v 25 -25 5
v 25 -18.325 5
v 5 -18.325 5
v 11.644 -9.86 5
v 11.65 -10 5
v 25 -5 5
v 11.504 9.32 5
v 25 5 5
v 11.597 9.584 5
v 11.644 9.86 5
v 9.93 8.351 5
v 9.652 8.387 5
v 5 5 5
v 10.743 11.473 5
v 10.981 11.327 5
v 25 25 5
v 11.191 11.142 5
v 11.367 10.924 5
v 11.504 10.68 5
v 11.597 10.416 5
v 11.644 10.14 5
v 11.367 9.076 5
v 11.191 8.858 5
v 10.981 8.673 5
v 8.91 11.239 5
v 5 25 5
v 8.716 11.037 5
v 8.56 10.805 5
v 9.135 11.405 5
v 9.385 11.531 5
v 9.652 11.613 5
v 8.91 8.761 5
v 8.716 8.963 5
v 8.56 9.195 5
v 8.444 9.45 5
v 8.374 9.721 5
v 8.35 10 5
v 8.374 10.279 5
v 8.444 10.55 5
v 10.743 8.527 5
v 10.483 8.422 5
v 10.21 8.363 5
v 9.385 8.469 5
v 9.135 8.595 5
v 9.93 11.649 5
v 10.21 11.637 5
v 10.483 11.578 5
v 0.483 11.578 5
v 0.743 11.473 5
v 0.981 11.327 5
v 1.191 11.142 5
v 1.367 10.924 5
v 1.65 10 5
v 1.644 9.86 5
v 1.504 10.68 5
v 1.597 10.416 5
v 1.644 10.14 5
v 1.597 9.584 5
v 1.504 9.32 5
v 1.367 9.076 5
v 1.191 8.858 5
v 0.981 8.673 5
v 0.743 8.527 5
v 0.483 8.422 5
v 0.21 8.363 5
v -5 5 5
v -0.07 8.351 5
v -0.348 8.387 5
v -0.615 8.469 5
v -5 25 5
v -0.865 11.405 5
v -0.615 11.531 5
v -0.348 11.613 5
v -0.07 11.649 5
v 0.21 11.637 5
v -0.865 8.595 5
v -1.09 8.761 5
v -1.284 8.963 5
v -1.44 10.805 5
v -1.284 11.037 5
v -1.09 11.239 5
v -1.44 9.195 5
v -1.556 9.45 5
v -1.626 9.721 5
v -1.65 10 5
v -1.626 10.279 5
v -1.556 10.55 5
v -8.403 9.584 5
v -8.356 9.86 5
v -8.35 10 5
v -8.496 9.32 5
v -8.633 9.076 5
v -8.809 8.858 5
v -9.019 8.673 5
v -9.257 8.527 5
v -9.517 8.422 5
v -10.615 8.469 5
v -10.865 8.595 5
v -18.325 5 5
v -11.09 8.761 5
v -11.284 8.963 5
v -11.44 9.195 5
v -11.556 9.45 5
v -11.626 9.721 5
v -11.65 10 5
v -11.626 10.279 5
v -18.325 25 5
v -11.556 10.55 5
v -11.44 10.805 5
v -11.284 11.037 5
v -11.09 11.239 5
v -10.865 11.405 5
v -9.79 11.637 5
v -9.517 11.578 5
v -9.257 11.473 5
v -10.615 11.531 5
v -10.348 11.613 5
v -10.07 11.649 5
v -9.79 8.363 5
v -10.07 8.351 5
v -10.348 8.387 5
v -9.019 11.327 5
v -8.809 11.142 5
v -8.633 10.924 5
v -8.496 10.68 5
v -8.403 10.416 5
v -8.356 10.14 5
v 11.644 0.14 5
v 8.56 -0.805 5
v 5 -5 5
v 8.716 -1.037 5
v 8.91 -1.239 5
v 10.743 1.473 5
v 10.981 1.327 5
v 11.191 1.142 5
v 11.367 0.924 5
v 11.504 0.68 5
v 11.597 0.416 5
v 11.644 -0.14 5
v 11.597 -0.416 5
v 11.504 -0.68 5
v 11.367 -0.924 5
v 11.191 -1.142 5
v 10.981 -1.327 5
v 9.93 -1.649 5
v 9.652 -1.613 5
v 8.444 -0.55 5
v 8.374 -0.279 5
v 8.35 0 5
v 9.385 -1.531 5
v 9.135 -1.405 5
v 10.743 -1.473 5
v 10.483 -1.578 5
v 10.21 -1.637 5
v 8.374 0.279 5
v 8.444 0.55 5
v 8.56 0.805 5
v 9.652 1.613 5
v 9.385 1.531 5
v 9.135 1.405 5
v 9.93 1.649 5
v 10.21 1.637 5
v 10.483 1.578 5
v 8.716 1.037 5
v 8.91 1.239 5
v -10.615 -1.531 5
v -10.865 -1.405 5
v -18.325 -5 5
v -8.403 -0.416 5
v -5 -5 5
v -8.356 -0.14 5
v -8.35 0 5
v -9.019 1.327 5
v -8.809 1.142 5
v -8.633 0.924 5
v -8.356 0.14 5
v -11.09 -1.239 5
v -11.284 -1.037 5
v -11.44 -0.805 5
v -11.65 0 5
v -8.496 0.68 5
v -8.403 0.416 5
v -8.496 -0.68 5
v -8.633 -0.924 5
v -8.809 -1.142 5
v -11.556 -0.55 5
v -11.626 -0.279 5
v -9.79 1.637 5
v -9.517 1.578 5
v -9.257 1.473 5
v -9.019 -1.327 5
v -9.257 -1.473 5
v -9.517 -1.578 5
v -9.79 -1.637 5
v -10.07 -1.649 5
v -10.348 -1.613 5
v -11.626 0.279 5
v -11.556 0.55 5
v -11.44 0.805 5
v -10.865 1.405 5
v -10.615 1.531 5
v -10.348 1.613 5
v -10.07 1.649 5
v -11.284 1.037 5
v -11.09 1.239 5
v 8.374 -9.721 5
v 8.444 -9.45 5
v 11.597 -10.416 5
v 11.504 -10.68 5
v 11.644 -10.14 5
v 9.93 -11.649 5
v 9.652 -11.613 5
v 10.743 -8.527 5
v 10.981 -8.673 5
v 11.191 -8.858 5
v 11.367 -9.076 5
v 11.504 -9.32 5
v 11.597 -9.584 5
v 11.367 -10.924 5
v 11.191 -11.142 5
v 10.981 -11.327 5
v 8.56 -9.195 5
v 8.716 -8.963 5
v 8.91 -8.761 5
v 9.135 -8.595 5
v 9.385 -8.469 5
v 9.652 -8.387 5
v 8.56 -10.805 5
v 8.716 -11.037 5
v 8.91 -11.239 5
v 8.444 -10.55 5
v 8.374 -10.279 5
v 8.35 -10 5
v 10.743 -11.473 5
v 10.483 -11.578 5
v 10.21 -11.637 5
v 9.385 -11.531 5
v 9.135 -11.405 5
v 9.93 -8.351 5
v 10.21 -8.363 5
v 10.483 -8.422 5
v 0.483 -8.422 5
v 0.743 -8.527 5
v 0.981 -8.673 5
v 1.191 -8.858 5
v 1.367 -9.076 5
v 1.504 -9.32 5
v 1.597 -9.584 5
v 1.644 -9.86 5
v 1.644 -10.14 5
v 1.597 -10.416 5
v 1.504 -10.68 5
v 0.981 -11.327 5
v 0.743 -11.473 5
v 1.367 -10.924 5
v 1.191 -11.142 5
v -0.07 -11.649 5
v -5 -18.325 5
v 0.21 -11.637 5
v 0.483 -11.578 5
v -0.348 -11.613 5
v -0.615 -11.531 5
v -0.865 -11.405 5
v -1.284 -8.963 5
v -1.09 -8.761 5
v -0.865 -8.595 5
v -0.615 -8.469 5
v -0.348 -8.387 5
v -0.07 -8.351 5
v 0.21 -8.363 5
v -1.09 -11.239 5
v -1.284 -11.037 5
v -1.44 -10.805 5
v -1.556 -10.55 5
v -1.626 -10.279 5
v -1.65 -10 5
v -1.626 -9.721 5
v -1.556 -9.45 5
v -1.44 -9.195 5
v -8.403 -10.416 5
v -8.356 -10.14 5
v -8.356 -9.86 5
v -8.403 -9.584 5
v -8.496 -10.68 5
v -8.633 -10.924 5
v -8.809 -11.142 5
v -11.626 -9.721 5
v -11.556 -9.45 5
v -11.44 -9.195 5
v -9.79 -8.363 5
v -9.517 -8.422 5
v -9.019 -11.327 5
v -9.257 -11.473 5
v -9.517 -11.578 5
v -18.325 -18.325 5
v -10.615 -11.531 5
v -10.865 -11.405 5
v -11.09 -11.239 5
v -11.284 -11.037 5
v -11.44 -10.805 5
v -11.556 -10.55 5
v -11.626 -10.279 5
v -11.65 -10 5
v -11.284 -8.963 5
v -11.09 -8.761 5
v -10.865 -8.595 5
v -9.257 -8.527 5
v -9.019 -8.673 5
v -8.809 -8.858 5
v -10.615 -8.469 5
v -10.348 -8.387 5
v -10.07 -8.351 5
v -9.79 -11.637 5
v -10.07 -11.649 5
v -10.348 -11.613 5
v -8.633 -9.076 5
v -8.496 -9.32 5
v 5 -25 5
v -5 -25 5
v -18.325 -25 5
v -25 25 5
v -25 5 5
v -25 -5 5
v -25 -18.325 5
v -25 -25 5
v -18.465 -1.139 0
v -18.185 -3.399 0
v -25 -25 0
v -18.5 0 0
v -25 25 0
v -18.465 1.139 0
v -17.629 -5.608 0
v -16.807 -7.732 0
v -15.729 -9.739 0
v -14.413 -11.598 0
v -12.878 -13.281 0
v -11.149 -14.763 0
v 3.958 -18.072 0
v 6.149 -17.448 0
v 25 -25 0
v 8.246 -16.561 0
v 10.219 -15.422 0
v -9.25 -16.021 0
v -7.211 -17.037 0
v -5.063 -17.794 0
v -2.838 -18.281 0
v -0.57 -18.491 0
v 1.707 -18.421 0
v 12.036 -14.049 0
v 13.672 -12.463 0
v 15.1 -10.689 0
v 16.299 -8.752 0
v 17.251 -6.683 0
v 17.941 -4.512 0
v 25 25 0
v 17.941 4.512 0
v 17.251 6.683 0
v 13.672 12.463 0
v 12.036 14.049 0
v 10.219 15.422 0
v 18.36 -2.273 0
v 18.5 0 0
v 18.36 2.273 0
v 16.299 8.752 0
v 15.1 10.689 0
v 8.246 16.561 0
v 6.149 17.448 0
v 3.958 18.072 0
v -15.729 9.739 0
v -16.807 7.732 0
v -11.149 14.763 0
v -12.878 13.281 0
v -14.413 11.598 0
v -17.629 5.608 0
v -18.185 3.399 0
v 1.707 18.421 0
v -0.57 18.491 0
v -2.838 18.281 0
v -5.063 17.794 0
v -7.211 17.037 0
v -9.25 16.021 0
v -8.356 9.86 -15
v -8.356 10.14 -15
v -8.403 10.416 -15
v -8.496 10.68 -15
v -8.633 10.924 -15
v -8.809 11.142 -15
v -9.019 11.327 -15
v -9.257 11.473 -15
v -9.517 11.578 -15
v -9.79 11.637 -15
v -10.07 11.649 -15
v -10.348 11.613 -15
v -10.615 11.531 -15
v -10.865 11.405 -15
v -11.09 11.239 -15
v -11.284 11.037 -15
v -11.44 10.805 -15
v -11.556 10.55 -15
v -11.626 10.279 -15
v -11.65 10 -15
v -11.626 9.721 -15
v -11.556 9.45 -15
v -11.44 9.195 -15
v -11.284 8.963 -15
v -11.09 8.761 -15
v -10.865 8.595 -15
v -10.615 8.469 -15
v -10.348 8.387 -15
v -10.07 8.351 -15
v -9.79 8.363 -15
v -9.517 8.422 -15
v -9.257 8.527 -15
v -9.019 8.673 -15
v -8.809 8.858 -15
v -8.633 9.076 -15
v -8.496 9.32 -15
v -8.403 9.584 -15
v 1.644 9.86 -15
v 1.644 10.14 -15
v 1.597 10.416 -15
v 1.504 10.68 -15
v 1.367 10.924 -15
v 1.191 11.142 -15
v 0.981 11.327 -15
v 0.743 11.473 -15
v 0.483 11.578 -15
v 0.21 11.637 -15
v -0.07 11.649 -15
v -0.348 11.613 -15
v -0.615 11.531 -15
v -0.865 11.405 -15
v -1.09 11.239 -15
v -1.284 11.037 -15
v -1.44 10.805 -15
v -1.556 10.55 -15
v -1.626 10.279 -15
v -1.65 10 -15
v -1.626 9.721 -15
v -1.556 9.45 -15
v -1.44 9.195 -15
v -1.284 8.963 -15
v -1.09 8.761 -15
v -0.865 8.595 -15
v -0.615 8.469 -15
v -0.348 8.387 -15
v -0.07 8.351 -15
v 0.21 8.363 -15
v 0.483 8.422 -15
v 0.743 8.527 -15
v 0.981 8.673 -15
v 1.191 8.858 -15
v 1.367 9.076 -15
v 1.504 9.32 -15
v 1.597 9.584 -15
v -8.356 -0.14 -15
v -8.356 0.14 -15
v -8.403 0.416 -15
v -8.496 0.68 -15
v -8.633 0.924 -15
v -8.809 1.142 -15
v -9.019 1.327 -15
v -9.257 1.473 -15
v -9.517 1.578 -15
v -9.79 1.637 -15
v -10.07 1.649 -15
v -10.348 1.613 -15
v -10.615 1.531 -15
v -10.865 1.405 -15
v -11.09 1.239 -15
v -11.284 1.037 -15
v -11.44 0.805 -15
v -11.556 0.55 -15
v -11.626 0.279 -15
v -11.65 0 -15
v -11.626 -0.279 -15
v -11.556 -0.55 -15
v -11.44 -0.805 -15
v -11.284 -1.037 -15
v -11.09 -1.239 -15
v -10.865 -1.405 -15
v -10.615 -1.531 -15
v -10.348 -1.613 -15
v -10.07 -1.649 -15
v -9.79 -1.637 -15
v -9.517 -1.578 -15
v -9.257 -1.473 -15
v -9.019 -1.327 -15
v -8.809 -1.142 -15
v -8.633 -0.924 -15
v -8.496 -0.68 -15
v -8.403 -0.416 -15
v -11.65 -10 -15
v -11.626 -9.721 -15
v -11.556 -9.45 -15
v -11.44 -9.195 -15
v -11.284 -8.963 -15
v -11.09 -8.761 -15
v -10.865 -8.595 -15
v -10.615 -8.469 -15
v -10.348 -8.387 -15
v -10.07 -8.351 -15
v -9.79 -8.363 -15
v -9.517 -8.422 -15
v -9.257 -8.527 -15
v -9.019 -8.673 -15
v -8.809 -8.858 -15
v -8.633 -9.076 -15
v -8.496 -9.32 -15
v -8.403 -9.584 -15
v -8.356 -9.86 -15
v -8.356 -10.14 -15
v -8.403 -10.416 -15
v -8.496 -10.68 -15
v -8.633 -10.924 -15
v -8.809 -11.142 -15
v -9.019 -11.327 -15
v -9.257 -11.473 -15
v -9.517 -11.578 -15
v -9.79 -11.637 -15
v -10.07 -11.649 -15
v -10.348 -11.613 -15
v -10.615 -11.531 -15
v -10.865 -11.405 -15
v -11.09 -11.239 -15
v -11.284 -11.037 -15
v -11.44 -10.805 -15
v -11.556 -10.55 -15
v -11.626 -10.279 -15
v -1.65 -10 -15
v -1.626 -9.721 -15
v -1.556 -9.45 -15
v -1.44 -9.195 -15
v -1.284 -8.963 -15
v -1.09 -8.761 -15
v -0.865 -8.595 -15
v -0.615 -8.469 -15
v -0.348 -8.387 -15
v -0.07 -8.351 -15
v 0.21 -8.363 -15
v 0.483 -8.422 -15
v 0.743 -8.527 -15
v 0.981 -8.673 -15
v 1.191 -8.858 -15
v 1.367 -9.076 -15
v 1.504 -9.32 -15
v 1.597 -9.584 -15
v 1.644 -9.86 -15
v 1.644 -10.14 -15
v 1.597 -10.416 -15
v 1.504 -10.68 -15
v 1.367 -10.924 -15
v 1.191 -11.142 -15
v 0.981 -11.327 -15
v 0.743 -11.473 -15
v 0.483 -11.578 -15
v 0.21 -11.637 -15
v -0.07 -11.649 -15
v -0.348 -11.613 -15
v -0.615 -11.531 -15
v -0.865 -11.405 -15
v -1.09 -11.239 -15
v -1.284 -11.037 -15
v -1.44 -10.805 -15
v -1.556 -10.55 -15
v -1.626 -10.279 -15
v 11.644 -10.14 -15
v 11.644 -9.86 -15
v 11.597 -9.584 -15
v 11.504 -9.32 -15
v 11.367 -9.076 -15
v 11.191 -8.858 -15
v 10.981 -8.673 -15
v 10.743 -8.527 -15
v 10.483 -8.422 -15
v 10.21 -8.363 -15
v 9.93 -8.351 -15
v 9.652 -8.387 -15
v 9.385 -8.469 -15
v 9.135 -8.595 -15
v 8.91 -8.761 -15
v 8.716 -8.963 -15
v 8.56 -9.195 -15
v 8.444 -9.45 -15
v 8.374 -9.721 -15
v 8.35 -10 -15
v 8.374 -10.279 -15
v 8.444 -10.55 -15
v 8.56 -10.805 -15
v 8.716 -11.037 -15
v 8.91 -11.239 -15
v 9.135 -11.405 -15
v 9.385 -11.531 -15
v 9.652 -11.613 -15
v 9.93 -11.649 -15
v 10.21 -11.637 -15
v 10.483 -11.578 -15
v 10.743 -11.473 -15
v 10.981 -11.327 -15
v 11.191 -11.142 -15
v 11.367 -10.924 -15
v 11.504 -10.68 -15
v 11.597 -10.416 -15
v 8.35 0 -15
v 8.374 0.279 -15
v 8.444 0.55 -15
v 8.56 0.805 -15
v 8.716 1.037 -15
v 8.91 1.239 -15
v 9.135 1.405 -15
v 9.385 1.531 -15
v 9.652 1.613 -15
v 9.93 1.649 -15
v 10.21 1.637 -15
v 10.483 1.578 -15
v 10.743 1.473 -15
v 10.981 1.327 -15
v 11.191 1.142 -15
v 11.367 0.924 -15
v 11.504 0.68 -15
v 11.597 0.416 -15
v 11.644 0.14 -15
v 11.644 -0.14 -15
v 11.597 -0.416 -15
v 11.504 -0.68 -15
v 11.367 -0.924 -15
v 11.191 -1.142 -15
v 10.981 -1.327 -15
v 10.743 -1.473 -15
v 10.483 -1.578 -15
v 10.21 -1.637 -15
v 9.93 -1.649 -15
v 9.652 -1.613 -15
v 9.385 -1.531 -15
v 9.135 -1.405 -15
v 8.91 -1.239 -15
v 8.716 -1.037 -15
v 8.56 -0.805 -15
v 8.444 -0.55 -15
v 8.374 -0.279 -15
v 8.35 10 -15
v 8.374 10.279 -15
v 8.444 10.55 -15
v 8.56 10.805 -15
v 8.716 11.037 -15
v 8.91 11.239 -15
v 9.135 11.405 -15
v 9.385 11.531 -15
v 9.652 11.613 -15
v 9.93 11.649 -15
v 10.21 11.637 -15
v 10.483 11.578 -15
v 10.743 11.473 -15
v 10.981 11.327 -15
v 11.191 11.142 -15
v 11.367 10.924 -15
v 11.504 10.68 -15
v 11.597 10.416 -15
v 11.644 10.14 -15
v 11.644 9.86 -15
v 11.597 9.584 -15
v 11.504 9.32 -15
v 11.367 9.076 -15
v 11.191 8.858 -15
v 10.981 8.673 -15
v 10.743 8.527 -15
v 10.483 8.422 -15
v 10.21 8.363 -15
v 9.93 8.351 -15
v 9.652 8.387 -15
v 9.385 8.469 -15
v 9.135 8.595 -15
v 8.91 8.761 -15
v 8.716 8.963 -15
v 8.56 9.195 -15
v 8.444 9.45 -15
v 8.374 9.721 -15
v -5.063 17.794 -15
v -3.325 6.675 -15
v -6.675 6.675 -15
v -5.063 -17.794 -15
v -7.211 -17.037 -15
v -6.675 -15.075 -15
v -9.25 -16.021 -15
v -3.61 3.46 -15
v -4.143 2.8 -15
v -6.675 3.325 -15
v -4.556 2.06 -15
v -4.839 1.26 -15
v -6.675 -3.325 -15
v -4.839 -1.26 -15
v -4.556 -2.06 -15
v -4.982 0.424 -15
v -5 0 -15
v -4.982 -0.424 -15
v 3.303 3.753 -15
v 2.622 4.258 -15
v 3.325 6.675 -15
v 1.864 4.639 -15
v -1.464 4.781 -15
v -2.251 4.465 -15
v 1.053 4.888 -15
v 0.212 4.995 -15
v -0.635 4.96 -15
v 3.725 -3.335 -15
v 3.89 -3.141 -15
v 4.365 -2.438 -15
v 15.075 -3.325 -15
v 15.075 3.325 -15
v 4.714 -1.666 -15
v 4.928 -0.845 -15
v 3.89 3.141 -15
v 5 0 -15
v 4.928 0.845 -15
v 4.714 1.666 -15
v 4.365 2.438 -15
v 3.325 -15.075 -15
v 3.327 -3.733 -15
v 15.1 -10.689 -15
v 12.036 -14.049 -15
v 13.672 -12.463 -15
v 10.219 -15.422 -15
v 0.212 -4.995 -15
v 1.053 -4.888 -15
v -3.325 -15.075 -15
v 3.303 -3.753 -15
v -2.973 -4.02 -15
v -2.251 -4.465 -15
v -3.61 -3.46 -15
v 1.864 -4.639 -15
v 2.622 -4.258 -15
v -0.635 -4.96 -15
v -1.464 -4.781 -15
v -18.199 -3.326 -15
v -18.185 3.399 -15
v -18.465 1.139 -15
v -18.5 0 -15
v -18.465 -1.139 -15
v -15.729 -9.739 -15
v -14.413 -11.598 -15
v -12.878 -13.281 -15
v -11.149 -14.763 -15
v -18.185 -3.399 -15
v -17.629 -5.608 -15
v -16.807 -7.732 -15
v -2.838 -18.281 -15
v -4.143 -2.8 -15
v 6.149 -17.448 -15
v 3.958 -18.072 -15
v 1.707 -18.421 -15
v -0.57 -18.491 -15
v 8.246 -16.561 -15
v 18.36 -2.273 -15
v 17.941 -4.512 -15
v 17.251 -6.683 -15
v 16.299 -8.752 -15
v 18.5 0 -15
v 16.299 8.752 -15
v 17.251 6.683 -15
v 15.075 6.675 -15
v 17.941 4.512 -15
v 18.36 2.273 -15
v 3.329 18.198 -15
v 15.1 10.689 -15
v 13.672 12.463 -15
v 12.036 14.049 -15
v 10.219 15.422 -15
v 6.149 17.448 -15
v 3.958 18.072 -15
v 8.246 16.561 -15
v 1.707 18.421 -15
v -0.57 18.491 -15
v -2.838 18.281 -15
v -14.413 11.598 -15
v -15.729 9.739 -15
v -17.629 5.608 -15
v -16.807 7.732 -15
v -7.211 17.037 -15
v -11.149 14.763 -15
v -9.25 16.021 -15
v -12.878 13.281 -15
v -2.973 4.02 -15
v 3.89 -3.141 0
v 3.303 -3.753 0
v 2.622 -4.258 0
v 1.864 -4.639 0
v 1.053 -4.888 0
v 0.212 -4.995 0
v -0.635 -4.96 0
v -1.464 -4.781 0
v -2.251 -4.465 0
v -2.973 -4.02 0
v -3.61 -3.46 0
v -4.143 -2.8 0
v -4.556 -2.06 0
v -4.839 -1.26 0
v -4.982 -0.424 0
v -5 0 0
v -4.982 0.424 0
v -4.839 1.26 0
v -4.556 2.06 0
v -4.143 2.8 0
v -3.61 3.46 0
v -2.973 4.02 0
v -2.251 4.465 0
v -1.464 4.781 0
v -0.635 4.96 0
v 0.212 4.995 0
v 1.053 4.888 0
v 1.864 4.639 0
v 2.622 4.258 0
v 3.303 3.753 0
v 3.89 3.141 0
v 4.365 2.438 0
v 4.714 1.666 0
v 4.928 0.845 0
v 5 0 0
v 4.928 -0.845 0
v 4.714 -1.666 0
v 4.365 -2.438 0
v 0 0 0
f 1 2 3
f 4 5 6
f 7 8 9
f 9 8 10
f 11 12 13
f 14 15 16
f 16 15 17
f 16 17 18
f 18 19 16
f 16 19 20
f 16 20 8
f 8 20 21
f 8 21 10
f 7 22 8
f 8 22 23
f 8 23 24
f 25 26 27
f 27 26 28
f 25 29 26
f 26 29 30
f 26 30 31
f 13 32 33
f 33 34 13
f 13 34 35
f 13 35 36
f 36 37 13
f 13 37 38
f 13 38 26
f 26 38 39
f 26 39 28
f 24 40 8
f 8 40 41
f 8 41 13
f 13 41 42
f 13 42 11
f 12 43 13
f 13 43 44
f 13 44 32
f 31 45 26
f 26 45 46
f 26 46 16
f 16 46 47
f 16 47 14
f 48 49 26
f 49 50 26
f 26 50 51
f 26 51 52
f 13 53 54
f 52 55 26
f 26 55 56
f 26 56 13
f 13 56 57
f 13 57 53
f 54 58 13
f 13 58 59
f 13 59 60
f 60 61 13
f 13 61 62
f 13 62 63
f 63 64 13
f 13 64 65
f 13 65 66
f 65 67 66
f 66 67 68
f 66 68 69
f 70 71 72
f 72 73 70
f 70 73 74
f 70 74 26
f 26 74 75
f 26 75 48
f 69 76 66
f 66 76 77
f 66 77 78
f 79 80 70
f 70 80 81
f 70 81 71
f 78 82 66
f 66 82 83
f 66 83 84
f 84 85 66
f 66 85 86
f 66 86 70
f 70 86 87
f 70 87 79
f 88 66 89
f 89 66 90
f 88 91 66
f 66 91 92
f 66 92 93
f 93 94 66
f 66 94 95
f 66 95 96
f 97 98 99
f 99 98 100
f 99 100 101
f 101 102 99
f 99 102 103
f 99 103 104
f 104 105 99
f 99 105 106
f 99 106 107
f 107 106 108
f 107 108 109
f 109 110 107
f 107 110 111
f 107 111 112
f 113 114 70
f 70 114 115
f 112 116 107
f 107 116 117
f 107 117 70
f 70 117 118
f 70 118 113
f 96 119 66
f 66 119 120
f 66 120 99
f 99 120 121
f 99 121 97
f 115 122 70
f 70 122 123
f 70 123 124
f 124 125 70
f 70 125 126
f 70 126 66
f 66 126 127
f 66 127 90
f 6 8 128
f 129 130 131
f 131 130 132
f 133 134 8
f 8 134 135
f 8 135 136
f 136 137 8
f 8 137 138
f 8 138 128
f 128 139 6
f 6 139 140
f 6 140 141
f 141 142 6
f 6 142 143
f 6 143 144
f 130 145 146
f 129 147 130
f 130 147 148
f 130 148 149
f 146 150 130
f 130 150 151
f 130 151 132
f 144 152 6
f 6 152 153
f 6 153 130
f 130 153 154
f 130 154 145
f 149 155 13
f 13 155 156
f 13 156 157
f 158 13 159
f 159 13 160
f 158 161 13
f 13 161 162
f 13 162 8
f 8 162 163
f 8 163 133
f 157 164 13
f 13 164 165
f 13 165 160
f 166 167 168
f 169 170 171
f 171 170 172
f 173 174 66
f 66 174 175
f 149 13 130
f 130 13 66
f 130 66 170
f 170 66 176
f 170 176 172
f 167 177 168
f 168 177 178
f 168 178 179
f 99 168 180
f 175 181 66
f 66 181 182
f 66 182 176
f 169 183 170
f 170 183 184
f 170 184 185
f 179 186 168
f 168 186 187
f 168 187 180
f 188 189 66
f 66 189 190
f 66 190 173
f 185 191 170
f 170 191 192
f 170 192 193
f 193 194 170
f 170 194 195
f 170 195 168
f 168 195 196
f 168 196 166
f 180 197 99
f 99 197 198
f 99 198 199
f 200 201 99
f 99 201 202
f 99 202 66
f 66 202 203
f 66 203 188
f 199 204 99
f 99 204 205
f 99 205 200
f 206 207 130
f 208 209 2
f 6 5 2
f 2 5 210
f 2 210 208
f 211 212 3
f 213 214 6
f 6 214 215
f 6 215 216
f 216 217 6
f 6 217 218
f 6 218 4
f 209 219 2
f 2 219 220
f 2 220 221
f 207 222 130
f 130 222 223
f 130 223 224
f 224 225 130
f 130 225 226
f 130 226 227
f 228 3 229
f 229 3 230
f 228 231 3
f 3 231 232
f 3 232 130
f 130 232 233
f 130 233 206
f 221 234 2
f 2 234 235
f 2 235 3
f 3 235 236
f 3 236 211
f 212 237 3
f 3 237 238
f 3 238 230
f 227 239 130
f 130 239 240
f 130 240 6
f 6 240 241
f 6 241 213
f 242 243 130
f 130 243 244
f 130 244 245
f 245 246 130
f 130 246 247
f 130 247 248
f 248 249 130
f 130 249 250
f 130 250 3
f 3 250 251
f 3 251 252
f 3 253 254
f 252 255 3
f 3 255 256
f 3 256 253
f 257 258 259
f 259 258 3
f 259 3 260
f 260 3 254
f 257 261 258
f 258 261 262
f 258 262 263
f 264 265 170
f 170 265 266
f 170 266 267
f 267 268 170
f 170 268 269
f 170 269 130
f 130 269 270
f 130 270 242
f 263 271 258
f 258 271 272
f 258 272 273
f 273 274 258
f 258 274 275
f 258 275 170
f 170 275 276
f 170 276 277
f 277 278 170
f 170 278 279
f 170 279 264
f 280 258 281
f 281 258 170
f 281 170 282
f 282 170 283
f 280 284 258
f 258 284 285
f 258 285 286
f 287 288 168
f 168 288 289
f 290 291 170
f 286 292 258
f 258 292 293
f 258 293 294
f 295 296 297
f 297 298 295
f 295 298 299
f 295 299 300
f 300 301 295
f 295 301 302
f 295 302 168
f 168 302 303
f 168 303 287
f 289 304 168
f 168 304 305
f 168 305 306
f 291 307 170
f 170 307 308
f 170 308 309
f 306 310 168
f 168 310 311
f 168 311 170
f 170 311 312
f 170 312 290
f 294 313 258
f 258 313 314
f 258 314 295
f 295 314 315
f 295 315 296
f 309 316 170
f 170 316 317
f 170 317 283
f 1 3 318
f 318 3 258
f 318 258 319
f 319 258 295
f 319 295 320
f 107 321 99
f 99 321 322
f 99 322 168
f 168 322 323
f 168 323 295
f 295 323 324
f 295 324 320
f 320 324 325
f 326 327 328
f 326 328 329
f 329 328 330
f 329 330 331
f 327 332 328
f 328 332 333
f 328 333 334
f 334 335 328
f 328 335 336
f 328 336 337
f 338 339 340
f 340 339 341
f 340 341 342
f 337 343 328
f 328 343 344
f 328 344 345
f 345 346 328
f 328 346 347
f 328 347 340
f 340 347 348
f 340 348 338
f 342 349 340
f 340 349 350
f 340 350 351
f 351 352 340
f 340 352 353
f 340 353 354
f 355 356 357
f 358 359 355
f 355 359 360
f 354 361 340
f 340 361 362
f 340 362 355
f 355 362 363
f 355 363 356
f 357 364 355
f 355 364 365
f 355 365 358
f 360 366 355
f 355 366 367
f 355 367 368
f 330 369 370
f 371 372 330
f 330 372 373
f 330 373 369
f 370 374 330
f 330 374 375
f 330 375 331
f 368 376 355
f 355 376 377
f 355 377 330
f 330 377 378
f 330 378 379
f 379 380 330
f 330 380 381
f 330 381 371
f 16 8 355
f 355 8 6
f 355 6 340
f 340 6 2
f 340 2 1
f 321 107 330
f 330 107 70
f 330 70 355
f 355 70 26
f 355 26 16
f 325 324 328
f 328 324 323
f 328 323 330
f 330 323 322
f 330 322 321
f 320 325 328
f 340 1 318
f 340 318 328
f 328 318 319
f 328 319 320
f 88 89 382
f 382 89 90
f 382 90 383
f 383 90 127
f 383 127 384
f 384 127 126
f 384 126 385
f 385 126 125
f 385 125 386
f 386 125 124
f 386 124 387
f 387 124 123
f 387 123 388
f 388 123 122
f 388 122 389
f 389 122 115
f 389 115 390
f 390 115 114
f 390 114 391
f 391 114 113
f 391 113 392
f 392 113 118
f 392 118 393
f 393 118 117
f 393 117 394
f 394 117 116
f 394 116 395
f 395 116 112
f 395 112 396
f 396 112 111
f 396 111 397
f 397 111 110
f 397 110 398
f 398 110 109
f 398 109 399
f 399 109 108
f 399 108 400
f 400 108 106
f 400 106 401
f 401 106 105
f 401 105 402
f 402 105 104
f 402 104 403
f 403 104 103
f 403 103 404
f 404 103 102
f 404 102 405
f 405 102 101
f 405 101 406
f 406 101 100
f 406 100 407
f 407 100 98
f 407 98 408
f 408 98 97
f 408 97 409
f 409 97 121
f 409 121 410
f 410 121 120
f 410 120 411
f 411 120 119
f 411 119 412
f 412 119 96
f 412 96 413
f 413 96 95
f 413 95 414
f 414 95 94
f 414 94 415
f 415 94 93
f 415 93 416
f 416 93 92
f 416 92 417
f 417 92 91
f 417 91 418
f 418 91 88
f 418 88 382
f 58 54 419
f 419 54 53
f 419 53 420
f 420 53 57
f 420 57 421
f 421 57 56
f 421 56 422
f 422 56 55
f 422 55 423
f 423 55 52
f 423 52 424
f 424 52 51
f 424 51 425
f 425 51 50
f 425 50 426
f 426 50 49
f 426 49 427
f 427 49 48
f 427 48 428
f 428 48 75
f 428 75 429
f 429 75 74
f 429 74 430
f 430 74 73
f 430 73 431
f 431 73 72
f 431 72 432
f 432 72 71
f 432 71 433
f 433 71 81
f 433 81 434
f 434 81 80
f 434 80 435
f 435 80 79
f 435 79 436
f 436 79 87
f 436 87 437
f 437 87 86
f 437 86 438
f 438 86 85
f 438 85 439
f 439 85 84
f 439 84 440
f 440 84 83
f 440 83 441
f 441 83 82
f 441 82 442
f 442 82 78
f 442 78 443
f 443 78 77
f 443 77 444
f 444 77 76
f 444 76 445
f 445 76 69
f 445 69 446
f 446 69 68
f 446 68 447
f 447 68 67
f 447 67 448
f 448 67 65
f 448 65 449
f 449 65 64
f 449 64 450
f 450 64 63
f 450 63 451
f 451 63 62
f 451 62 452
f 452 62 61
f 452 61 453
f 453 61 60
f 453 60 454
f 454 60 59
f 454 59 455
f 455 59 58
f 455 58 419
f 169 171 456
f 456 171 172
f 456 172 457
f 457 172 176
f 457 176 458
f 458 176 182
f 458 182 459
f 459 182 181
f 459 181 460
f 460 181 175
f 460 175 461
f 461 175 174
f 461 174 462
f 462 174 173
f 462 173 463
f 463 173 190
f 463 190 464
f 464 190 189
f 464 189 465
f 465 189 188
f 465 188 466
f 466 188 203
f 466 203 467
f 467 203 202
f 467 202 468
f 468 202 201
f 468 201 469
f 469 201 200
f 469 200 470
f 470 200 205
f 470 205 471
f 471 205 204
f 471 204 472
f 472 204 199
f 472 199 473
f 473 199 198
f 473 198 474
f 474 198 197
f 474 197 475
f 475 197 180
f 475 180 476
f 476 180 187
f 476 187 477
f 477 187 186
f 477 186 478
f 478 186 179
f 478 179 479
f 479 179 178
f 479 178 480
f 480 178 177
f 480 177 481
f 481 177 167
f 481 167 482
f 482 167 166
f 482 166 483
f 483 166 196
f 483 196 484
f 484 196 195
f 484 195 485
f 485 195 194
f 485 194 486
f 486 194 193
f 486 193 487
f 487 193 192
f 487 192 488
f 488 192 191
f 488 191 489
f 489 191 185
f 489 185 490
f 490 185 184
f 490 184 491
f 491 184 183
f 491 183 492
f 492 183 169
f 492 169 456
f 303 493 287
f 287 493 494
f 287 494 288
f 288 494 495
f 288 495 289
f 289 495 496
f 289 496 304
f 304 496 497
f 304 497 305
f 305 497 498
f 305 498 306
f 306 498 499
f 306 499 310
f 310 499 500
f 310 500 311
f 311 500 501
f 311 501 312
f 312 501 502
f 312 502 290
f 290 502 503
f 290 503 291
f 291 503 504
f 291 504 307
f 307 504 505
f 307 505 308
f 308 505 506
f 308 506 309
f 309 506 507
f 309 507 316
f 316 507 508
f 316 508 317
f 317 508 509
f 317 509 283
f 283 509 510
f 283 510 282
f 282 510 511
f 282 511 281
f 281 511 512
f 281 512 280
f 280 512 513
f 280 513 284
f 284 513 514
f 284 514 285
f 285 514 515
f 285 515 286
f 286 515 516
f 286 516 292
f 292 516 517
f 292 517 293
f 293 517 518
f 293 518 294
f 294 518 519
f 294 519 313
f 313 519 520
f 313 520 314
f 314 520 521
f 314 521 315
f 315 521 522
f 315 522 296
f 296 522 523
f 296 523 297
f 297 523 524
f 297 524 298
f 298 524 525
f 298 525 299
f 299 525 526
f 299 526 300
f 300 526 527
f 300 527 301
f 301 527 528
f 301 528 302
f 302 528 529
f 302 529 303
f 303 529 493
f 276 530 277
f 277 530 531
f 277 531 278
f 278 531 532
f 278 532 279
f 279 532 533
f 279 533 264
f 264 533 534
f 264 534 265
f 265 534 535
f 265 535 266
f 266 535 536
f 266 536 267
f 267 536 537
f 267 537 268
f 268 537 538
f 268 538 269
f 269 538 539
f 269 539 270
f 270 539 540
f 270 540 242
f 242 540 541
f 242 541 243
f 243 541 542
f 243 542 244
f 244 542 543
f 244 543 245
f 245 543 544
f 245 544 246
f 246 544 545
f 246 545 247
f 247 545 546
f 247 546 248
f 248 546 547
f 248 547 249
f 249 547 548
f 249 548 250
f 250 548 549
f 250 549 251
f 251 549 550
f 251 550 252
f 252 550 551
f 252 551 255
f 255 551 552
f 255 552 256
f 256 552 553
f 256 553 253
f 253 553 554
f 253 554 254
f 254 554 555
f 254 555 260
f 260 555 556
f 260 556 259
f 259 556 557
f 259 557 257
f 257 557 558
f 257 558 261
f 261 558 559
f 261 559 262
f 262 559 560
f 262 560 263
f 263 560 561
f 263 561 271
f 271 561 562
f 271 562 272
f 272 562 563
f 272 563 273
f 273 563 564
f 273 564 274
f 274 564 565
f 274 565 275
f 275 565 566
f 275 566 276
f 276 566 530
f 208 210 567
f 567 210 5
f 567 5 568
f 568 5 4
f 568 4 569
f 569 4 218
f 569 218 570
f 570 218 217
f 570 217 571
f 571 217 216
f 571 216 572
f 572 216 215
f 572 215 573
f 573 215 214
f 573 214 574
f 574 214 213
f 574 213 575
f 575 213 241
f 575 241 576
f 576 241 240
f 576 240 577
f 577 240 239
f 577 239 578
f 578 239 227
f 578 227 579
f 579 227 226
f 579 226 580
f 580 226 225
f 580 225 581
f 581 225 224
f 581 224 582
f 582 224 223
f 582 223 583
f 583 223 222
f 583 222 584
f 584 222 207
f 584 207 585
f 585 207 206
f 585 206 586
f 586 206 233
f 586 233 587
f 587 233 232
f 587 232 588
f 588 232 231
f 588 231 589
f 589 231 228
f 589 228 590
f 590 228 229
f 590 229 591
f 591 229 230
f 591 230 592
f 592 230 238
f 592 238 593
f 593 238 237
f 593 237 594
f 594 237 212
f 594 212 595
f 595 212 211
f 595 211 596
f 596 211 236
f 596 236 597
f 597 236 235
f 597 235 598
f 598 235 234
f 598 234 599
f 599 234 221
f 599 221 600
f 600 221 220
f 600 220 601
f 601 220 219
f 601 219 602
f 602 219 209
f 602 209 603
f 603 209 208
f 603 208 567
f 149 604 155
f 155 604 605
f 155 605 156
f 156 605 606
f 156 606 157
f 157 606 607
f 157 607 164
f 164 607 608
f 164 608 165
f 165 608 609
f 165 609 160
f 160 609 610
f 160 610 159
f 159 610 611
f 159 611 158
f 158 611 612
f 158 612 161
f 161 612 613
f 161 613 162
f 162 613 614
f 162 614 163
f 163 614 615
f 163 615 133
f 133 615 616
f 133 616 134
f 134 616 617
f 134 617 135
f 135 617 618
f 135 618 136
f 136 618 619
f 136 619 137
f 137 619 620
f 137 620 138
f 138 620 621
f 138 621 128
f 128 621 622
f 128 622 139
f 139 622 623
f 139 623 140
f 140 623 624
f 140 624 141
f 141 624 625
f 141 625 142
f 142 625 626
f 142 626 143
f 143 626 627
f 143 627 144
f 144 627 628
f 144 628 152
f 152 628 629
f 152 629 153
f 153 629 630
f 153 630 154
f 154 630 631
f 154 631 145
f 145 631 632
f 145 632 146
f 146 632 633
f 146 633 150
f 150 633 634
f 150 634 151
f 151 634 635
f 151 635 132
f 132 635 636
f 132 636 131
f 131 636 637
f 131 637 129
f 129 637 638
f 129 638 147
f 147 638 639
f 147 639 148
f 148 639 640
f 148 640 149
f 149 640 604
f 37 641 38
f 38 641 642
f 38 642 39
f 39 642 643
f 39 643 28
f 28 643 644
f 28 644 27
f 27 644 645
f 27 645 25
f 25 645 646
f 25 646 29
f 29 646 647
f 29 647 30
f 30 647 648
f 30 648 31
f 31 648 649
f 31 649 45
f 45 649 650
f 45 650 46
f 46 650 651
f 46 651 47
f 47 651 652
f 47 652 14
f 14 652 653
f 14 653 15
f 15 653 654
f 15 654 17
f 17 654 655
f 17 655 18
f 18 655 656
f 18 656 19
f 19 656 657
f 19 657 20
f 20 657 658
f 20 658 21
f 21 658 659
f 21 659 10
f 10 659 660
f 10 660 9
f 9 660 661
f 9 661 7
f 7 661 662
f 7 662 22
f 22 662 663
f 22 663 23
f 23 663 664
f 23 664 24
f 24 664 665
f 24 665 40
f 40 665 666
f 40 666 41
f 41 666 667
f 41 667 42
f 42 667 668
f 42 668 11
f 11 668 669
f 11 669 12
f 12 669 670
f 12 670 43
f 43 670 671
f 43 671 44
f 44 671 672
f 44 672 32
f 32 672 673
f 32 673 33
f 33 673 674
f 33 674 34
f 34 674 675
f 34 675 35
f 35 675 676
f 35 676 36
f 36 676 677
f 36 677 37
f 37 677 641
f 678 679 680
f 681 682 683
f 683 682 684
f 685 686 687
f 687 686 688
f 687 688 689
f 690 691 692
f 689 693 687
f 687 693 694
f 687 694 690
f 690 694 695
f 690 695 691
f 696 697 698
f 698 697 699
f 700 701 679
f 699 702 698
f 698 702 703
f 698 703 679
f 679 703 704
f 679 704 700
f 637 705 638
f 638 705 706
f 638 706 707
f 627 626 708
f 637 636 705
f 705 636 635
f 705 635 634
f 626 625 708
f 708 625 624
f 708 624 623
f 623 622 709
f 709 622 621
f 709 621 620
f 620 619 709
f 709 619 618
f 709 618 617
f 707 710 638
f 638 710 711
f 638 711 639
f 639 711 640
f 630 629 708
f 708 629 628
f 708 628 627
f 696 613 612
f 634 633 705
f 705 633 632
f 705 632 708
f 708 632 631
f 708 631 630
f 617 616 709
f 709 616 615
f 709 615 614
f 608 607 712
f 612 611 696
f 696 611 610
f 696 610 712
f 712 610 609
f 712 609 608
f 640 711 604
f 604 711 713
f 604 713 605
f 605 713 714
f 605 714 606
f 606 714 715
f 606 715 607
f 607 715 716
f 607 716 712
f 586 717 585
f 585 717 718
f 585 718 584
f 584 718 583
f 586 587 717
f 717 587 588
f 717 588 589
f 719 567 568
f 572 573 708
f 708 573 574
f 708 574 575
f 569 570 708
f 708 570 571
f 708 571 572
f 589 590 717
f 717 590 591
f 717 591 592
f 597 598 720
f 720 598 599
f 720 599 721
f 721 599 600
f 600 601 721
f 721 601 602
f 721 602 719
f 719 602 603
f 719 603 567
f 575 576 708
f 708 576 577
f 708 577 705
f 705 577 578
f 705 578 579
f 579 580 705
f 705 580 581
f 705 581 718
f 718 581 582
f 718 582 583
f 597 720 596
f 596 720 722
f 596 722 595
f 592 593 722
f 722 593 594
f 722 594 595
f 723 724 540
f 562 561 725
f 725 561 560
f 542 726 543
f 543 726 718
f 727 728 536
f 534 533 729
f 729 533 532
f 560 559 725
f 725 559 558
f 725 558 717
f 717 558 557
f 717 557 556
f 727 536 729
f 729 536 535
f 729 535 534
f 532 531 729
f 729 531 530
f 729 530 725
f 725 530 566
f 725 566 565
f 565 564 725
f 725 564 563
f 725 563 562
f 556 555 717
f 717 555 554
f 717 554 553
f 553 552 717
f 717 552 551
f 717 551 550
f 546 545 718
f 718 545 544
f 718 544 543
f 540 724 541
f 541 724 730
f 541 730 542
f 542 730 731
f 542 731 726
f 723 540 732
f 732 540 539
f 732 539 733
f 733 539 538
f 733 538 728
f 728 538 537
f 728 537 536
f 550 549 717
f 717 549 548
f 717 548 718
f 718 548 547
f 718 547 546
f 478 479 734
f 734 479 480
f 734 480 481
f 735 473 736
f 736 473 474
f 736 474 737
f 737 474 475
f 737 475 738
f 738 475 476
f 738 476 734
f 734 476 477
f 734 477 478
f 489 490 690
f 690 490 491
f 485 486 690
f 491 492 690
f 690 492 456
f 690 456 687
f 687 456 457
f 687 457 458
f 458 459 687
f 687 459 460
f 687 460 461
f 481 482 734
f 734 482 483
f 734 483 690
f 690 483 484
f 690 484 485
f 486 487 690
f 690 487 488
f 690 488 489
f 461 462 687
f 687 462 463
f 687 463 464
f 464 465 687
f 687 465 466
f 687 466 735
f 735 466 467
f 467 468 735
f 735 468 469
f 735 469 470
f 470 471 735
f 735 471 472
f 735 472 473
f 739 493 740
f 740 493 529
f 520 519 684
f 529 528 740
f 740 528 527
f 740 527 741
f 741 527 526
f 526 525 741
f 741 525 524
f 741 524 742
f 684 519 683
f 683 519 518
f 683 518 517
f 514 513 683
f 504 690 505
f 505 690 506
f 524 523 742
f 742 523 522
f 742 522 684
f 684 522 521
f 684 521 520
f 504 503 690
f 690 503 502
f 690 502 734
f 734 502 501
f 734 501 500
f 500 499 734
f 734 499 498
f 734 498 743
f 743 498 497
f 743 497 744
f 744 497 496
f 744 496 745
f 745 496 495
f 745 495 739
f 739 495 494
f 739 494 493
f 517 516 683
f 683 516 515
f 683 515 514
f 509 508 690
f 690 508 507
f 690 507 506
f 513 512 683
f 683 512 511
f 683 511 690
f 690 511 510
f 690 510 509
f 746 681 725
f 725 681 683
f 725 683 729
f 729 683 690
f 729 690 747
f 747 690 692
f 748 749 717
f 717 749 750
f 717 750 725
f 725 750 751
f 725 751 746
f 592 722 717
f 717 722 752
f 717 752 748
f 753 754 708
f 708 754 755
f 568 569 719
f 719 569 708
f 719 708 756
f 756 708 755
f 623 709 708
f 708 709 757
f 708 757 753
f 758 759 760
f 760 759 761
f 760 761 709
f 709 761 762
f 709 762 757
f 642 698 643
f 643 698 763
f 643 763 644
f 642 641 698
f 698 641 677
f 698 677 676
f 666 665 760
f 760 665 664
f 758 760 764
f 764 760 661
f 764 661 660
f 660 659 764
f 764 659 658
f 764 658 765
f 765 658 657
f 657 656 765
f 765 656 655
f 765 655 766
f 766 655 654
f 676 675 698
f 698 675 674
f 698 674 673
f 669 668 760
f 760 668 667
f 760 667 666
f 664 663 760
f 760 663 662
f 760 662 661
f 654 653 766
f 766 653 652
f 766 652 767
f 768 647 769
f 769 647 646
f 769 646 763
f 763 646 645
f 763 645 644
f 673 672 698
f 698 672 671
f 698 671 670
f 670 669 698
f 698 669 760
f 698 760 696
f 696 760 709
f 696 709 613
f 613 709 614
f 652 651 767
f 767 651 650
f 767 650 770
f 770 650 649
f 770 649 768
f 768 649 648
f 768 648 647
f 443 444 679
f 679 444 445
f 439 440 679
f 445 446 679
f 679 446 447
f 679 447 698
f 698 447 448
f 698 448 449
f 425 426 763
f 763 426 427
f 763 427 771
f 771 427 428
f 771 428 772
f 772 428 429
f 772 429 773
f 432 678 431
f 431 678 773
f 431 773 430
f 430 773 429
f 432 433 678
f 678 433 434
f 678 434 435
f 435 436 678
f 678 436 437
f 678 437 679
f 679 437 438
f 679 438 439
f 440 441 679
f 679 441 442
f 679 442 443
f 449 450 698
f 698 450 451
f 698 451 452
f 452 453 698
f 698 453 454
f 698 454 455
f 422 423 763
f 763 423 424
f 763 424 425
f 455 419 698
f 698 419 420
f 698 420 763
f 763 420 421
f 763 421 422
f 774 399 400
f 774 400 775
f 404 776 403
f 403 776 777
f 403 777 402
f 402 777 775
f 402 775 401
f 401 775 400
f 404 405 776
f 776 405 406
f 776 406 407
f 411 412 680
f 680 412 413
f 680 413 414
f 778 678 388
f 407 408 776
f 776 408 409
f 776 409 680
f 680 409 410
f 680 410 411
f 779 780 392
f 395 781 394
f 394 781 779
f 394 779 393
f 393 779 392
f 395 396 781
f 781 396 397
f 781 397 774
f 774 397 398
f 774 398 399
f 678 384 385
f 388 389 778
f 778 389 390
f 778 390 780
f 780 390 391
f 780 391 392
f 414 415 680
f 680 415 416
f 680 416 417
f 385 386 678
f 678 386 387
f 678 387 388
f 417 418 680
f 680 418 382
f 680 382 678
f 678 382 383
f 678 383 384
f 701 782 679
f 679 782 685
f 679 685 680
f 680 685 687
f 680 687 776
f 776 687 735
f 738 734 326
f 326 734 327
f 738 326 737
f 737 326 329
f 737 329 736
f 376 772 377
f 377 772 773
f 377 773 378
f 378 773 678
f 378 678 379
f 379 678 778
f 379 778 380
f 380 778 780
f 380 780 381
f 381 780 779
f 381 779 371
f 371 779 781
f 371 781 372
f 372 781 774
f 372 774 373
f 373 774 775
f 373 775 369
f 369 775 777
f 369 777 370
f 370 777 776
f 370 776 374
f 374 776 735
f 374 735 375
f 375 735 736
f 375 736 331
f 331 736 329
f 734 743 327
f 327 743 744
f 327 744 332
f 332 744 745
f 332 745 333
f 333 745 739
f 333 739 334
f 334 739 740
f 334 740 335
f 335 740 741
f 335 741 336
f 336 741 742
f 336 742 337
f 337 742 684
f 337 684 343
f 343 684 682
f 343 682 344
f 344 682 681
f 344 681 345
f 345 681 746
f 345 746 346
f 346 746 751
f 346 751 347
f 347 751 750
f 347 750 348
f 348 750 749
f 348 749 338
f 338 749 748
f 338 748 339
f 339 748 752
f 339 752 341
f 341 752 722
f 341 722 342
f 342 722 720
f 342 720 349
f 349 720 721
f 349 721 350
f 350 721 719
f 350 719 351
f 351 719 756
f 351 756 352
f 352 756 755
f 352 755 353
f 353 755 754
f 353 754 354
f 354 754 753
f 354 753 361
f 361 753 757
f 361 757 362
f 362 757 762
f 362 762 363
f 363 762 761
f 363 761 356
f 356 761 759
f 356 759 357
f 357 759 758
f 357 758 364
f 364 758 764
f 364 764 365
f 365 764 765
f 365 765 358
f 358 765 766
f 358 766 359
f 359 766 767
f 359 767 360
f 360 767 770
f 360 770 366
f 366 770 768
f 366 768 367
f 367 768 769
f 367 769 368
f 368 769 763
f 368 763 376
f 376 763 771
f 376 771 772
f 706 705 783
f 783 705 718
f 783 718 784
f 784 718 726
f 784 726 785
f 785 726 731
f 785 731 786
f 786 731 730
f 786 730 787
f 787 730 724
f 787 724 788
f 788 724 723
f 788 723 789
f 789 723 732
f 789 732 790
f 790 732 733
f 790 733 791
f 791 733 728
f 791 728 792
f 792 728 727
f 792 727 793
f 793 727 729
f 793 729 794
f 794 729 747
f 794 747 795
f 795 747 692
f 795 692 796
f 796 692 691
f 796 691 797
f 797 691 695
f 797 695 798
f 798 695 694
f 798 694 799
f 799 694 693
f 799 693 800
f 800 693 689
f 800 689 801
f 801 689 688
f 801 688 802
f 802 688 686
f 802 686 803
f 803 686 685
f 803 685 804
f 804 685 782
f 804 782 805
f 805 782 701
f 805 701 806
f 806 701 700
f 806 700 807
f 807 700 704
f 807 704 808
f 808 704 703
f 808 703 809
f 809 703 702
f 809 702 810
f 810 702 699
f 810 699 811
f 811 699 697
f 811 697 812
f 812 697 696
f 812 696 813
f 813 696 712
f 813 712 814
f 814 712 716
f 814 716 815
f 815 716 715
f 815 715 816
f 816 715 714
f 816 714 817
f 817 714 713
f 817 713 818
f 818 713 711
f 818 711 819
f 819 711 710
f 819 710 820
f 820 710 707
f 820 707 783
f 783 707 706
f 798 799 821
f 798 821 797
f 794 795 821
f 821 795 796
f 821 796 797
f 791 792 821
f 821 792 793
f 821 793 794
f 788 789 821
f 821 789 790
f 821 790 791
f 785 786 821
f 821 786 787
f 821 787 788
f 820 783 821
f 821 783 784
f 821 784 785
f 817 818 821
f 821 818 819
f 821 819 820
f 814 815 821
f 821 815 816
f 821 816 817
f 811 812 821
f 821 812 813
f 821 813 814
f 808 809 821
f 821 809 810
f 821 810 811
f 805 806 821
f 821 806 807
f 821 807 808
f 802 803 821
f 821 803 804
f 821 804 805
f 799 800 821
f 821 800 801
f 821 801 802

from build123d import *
from build123d.topology import SkipClean

# Parameters (mm, degrees)
SKETCH_1_W      = 50
SKETCH_1_H      = 50
SKETCH_1_R      = 1.65
EXTRUDE_1_DEPTH = 5
EXTRUDE_START   = 15
SKETCH_4_R      = 18.5
SKETCH_4_R_2    = 1.65
SKETCH_4_R_3    = 5
EXTRUDE_4_DEPTH = 15


with BuildPart() as part:
    # 草图1 → 凸台-拉伸1 (new body)
    with BuildSketch(Plane.XY):
        Rectangle(SKETCH_1_W, SKETCH_1_H)
        with Locations((-10, 10)):
            Circle(SKETCH_1_R, mode=Mode.SUBTRACT)
        with Locations((0, 10)):
            Circle(SKETCH_1_R, mode=Mode.SUBTRACT)
        with Locations((-10, 0)):
            Circle(SKETCH_1_R, mode=Mode.SUBTRACT)
        with Locations(Location((-10, -10, 0), (0, 0, 180))):
            Circle(SKETCH_1_R, mode=Mode.SUBTRACT)
        with Locations(Location((0, -10, 0), (0, 0, 180))):
            Circle(SKETCH_1_R, mode=Mode.SUBTRACT)
        with Locations((10, -10)):
            Circle(SKETCH_1_R, mode=Mode.SUBTRACT)
        with Locations(Location((10, 0, 0), (0, 0, 180))):
            Circle(SKETCH_1_R, mode=Mode.SUBTRACT)
        with Locations(Location((10, 10, 0), (0, 0, 180))):
            Circle(SKETCH_1_R, mode=Mode.SUBTRACT)
    extrude(amount=EXTRUDE_1_DEPTH)

    # 草图4 → 凸台-拉伸4 (add)
    with SkipClean():  # the faces are left unmerged after this step: merging them gives an invalid solid
        with BuildSketch(Plane(origin=(0, 0, 0), x_dir=(-1, 0, 0), z_dir=(0, 0, -1)).offset(EXTRUDE_START)):
            Circle(SKETCH_4_R)
            with Locations((10, -10)):
                Circle(SKETCH_4_R_2, mode=Mode.SUBTRACT)
            with Locations((0, -10)):
                Circle(SKETCH_4_R_2, mode=Mode.SUBTRACT)
            with Locations((-10, -10)):
                Circle(SKETCH_4_R_2, mode=Mode.SUBTRACT)
            with Locations((10, 0)):
                Circle(SKETCH_4_R_2, mode=Mode.SUBTRACT)
            with Locations((-10, 0)):
                Circle(SKETCH_4_R_2, mode=Mode.SUBTRACT)
            with Locations((10, 10)):
                Circle(SKETCH_4_R_2, mode=Mode.SUBTRACT)
            with Locations((0, 10)):
                Circle(SKETCH_4_R_2, mode=Mode.SUBTRACT)
            Circle(SKETCH_4_R_3, mode=Mode.SUBTRACT)
            with Locations((-10, 10)):
                Circle(SKETCH_4_R_2, mode=Mode.SUBTRACT)
        extrude(amount=-EXTRUDE_4_DEPTH)


solid = part.part
